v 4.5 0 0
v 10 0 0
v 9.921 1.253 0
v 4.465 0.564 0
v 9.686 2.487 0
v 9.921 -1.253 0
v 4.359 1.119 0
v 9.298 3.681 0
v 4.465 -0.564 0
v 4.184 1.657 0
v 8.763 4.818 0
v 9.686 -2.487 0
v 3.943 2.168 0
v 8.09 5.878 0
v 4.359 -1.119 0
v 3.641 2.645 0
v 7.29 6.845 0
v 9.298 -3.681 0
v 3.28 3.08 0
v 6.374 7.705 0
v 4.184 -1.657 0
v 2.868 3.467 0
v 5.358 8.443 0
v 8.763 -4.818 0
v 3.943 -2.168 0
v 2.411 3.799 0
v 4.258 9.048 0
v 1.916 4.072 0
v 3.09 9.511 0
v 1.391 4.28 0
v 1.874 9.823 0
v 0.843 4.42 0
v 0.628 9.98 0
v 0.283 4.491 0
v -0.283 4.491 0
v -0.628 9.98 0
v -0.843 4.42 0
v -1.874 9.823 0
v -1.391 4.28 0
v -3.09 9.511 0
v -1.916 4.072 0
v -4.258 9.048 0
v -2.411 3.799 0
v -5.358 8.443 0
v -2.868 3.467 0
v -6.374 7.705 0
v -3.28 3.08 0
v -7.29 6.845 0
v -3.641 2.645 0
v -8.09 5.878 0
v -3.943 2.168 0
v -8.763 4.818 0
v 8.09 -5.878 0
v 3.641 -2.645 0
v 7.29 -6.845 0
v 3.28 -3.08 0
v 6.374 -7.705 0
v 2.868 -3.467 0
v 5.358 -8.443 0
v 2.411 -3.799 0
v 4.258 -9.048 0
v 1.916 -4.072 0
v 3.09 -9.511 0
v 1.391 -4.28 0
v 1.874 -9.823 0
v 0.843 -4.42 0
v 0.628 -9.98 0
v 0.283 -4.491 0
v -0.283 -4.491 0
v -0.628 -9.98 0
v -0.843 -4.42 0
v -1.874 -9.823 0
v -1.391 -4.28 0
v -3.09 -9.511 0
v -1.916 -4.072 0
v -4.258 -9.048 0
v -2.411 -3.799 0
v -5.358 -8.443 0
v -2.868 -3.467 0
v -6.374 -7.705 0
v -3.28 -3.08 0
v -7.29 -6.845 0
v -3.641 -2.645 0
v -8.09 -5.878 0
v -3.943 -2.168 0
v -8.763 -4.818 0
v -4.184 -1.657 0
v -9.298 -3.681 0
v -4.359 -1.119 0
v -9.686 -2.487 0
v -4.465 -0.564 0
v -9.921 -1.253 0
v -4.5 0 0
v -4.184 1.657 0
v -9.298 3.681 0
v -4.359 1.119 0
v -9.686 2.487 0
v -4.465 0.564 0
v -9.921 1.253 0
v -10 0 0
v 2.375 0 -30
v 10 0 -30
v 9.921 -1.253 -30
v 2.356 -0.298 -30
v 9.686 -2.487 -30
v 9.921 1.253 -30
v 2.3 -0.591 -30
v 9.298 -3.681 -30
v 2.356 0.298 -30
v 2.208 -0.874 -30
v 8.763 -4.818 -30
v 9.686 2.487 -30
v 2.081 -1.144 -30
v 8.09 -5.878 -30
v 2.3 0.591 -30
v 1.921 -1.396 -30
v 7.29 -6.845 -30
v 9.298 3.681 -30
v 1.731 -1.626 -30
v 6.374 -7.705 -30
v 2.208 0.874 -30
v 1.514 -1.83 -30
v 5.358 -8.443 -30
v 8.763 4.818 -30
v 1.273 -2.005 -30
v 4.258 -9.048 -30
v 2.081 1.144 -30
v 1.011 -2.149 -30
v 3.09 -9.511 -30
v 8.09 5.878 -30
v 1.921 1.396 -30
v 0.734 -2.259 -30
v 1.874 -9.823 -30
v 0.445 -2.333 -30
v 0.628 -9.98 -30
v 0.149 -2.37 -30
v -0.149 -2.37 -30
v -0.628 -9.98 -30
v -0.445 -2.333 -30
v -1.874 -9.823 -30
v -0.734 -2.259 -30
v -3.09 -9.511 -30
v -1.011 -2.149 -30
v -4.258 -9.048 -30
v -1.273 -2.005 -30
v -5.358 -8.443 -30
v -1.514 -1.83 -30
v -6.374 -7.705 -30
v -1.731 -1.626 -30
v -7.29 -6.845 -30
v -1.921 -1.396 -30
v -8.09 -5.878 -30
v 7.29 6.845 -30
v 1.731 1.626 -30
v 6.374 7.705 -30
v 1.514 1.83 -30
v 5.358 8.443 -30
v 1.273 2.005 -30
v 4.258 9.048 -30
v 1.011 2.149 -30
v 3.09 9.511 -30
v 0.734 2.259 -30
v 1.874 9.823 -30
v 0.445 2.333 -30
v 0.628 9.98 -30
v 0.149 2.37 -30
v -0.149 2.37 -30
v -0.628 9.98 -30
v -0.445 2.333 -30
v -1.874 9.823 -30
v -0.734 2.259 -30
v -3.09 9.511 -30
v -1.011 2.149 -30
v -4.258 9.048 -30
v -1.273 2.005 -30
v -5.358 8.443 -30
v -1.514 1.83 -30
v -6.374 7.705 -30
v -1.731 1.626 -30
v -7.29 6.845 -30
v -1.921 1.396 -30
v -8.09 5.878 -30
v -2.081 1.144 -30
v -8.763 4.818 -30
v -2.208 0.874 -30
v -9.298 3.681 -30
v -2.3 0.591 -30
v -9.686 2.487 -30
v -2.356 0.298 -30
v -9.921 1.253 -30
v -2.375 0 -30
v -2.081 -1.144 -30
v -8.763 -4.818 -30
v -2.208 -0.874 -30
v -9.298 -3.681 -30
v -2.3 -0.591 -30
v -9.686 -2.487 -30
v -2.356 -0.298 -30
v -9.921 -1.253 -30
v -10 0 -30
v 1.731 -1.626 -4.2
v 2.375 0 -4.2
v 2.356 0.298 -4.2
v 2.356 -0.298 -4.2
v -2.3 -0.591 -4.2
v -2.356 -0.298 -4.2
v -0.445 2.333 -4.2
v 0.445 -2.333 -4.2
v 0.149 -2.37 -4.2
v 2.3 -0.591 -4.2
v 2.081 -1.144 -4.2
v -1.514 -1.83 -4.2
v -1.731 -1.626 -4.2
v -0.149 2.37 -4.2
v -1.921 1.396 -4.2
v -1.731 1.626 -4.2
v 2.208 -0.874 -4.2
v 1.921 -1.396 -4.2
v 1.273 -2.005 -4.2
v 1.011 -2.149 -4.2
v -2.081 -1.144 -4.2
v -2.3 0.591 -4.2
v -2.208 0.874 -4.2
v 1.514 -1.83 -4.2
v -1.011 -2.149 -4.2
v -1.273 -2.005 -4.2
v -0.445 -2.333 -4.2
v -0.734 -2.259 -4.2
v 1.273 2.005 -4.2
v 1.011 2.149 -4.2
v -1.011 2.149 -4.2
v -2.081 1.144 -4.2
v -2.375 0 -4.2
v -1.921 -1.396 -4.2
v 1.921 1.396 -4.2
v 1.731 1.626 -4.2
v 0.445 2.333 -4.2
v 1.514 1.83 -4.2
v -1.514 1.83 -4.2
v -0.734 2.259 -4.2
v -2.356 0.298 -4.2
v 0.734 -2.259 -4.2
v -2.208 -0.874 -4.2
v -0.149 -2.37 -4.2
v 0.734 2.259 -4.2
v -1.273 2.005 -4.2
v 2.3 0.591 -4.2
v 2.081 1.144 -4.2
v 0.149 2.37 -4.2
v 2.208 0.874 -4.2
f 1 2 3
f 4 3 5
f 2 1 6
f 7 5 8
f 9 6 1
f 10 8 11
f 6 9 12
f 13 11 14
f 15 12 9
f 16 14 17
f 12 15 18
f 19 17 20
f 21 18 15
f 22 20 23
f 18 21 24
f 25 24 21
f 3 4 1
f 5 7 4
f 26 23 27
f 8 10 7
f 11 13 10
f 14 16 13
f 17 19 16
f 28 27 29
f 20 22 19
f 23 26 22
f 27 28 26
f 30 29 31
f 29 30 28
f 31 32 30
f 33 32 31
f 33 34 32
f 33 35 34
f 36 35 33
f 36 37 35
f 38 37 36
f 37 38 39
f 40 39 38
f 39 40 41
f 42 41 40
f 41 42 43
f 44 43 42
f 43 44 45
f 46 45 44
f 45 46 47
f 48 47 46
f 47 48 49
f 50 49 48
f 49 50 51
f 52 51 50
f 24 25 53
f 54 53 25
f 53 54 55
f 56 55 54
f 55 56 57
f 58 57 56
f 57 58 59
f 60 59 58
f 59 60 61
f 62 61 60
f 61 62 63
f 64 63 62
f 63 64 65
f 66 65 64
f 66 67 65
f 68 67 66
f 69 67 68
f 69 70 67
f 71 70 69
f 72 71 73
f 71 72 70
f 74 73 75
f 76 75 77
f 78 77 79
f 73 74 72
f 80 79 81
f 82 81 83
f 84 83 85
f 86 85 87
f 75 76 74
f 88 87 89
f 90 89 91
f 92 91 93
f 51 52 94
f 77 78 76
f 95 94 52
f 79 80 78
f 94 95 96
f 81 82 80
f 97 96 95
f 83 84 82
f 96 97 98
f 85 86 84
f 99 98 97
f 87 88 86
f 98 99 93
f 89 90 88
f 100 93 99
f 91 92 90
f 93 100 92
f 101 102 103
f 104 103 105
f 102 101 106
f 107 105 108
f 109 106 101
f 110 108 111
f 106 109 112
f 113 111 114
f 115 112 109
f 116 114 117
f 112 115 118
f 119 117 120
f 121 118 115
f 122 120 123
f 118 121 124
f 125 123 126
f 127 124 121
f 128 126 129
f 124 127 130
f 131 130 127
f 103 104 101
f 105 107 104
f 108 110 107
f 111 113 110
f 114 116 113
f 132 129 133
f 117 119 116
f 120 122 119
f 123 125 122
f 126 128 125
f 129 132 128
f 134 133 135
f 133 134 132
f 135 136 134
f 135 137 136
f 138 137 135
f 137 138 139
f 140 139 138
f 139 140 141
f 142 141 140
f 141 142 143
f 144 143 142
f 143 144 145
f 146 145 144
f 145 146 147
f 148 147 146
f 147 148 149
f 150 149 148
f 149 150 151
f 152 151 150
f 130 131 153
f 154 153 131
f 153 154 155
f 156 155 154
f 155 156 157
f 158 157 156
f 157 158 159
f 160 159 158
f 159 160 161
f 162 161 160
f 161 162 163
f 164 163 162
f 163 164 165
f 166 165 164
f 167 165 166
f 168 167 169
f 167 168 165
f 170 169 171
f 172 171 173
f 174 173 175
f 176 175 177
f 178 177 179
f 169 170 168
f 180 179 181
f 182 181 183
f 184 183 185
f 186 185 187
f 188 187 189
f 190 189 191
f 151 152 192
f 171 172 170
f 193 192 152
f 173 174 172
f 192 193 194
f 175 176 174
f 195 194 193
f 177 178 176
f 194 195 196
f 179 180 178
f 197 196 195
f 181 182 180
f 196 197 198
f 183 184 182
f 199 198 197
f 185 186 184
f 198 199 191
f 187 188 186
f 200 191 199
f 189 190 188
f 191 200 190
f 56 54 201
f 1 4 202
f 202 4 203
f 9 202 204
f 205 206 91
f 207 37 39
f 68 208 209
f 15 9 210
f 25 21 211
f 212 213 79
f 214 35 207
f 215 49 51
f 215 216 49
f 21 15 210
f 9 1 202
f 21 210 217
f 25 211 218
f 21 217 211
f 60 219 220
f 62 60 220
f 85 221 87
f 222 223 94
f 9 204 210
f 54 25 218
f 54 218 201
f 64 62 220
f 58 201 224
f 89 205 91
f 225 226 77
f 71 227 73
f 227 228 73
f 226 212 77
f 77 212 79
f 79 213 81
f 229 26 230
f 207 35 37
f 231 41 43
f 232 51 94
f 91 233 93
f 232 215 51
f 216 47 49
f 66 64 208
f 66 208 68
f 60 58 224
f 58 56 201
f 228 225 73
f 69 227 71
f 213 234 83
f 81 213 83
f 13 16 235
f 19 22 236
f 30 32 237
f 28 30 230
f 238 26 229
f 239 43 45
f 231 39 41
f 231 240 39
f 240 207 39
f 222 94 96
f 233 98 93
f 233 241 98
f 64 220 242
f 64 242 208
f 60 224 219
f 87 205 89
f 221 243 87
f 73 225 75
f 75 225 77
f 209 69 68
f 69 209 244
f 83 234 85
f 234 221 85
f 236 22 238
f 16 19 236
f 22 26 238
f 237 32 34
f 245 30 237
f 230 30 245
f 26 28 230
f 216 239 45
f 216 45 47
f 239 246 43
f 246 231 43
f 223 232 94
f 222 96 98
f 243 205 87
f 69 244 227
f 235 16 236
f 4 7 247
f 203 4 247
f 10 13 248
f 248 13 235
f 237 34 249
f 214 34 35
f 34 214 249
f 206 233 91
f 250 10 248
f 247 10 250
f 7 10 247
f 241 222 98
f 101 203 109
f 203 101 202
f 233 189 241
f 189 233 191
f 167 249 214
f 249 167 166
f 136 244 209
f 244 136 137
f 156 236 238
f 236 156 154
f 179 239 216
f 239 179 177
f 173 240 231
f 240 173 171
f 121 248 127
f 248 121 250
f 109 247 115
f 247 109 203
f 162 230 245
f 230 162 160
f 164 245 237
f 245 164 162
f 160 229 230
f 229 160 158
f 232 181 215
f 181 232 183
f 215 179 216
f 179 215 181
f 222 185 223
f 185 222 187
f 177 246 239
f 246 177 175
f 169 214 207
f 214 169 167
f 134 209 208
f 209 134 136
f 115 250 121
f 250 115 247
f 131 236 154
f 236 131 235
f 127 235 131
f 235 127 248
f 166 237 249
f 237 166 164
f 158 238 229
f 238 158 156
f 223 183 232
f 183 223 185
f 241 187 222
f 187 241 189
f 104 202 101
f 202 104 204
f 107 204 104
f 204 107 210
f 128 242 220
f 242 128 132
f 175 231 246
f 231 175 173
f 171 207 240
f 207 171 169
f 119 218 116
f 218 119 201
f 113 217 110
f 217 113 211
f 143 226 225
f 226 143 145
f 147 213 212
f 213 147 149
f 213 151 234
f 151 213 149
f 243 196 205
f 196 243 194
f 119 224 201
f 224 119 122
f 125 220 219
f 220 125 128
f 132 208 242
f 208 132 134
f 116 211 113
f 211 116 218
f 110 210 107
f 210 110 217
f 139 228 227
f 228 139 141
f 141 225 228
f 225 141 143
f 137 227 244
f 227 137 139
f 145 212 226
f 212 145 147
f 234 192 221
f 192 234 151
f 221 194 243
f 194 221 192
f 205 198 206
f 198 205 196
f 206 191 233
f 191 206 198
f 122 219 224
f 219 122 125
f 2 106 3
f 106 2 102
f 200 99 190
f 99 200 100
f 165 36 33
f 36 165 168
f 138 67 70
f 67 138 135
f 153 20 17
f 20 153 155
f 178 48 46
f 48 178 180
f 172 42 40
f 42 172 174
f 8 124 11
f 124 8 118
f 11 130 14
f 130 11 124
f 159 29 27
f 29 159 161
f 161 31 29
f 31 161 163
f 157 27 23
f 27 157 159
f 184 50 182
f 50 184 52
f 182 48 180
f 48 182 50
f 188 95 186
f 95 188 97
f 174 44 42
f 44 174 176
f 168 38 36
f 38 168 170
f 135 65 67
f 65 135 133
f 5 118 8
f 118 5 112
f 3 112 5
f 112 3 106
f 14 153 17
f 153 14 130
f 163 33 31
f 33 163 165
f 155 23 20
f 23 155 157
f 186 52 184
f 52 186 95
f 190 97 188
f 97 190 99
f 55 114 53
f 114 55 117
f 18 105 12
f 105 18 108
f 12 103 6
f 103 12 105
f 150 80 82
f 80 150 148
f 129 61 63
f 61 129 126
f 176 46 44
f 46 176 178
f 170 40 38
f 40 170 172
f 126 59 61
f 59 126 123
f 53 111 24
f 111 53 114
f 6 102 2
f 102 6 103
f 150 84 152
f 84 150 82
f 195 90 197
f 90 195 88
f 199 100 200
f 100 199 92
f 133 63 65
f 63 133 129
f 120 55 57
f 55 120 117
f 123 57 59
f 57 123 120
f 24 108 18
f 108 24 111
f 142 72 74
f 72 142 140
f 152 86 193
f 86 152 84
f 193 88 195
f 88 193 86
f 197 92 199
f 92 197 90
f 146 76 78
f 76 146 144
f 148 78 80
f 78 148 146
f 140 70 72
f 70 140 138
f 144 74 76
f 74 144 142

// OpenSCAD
$fn = 50;


difference() {
	union() {
		translate(v = [0, 0, -30.0000000000]) {
			cylinder(h = 30, r = 10.0000000000);
		}
		cylinder(h = 0, r = 13.0000000000);
	}
	union() {
		translate(v = [0, 0, 0]) {
			rotate(a = [0, 0, 0]) {
				difference() {
					union() {
						#translate(v = [0, 0, -30.0000000000]) {
							cylinder(h = 30, r = 2.2500000000);
						}
						#translate(v = [0, 0, -4.2000000000]) {
							cylinder(h = 4.2000000000, r1 = 2.3750000000, r2 = 4.5000000000);
						}
						#translate(v = [0, 0, -30.0000000000]) {
							cylinder(h = 30, r = 2.3750000000);
						}
						#translate(v = [0, 0, -30.0000000000]) {
							cylinder(h = 30, r = 2.2500000000);
						}
					}
					union();
				}
			}
		}
	}
}
